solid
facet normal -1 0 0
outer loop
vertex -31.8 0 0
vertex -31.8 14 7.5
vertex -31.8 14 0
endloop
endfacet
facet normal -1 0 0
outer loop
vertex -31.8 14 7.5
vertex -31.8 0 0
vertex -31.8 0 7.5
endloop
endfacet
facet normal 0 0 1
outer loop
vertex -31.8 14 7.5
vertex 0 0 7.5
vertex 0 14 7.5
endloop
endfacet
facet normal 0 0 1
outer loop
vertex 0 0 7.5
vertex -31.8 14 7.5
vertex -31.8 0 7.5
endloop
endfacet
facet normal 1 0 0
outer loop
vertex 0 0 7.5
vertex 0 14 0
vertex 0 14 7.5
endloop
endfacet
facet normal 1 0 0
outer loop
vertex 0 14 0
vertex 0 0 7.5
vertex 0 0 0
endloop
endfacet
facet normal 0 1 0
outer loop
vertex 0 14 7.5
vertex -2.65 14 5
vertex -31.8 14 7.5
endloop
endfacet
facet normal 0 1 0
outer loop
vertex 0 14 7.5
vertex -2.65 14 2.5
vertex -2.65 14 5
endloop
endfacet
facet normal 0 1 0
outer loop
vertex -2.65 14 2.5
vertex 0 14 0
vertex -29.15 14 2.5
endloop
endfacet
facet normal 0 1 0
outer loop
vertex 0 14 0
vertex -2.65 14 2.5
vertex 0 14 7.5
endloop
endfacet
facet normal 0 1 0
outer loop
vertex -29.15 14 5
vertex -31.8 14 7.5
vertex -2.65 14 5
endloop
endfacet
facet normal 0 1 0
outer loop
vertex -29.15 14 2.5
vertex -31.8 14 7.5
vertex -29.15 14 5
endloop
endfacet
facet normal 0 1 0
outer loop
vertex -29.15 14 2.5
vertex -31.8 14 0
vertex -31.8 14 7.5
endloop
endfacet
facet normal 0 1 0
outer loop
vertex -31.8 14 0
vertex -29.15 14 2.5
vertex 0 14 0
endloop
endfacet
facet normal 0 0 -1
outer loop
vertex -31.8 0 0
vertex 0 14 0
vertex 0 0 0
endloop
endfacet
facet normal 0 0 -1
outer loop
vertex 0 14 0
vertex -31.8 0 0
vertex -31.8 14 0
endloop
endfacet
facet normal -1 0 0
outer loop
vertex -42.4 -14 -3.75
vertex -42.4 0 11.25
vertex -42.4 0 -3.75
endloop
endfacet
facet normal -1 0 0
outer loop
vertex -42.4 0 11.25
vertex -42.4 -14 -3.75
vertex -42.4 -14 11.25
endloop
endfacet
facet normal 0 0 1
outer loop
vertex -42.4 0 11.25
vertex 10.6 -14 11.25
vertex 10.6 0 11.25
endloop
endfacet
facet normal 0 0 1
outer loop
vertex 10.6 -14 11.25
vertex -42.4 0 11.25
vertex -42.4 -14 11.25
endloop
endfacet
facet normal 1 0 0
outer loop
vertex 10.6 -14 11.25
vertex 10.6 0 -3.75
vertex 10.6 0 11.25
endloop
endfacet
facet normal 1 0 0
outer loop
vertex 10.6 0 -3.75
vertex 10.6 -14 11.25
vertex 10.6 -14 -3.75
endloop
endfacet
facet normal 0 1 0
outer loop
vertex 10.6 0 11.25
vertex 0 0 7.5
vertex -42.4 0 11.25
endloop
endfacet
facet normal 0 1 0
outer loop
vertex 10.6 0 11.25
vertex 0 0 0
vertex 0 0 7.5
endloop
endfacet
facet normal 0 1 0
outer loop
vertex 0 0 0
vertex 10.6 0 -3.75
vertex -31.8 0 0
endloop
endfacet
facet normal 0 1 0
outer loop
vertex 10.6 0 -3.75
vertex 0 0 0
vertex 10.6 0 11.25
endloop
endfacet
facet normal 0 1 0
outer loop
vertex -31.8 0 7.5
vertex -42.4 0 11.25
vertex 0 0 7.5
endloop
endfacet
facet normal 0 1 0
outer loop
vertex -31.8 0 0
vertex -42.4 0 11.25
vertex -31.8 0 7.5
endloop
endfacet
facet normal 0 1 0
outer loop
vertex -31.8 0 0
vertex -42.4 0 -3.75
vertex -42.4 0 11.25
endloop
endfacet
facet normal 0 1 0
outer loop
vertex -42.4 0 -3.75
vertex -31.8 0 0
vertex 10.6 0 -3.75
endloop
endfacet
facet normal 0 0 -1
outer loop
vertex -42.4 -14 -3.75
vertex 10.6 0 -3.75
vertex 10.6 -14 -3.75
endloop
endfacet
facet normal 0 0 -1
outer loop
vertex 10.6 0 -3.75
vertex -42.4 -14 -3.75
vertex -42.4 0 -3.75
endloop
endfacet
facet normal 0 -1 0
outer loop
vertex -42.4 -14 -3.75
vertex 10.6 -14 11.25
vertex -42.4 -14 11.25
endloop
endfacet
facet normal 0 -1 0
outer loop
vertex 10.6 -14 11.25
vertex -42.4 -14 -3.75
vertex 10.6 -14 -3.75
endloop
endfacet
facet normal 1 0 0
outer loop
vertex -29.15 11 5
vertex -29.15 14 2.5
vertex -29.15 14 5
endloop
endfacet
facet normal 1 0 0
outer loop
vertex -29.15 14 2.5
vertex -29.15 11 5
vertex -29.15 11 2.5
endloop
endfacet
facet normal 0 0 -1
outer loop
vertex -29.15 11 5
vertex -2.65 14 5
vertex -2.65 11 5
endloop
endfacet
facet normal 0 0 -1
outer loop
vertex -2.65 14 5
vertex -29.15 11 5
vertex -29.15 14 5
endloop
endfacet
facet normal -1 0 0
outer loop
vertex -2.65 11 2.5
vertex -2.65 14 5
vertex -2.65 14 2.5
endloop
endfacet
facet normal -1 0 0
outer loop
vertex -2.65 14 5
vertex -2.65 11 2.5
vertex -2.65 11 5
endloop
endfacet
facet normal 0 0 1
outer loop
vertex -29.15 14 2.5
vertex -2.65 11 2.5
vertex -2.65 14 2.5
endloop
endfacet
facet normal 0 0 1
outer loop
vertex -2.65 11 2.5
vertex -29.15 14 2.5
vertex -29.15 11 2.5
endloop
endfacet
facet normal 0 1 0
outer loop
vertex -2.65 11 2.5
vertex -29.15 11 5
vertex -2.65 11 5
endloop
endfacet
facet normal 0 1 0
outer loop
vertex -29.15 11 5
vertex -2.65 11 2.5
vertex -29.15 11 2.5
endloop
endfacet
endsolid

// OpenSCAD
/////////////////////////////////////////////////////////////////////////////////
// Housing box for UppSense first tries.
//
// Author:              Maximilian Stiefel
// Last modification:   26.04.3017
/////////////////////////////////////////////////////////////////////////////////

/////////////////////////////////////////////////////////////////////////////////
// Vars
/////////////////////////////////////////////////////////////////////////////////
allowance_glass = 0.5;
my_color = "DarkRed";
glass_width = 26 + allowance_glass;
glass_height = 2 + allowance_glass;
glass_length = 76 + allowance_glass;
slot = 3;				// Depness of the glass slot
adapter_length = 2 + 5 + 4 + slot; 	// 2*allowance_pcb + thickness + distance(glass_slide, wall_inside) + slot

/////////////////////////////////////////////////////////////////////////////////
// Action
/////////////////////////////////////////////////////////////////////////////////
translate([-glass_width - 0.6*glass_width, -adapter_length, 1.5*glass_height]) difference(){
	color(my_color, 0.6) union(){
		// Front part of adapter 
		translate([glass_width/2-0.1*glass_width, adapter_length - 1, -1.5*glass_height]) cube([1.2*glass_width, adapter_length + 1, 3*glass_height]);
		// Back part of adapter
		translate([0, 0, -3*glass_height]) cube([2*glass_width, adapter_length, 6*glass_height]);
	}
	// Slot for the glass
	color(my_color, 0.5)
	translate([glass_width/2, 2*adapter_length-slot, -0.5*glass_height]) 
	cube([glass_width, slot + 2, glass_height]);

}
